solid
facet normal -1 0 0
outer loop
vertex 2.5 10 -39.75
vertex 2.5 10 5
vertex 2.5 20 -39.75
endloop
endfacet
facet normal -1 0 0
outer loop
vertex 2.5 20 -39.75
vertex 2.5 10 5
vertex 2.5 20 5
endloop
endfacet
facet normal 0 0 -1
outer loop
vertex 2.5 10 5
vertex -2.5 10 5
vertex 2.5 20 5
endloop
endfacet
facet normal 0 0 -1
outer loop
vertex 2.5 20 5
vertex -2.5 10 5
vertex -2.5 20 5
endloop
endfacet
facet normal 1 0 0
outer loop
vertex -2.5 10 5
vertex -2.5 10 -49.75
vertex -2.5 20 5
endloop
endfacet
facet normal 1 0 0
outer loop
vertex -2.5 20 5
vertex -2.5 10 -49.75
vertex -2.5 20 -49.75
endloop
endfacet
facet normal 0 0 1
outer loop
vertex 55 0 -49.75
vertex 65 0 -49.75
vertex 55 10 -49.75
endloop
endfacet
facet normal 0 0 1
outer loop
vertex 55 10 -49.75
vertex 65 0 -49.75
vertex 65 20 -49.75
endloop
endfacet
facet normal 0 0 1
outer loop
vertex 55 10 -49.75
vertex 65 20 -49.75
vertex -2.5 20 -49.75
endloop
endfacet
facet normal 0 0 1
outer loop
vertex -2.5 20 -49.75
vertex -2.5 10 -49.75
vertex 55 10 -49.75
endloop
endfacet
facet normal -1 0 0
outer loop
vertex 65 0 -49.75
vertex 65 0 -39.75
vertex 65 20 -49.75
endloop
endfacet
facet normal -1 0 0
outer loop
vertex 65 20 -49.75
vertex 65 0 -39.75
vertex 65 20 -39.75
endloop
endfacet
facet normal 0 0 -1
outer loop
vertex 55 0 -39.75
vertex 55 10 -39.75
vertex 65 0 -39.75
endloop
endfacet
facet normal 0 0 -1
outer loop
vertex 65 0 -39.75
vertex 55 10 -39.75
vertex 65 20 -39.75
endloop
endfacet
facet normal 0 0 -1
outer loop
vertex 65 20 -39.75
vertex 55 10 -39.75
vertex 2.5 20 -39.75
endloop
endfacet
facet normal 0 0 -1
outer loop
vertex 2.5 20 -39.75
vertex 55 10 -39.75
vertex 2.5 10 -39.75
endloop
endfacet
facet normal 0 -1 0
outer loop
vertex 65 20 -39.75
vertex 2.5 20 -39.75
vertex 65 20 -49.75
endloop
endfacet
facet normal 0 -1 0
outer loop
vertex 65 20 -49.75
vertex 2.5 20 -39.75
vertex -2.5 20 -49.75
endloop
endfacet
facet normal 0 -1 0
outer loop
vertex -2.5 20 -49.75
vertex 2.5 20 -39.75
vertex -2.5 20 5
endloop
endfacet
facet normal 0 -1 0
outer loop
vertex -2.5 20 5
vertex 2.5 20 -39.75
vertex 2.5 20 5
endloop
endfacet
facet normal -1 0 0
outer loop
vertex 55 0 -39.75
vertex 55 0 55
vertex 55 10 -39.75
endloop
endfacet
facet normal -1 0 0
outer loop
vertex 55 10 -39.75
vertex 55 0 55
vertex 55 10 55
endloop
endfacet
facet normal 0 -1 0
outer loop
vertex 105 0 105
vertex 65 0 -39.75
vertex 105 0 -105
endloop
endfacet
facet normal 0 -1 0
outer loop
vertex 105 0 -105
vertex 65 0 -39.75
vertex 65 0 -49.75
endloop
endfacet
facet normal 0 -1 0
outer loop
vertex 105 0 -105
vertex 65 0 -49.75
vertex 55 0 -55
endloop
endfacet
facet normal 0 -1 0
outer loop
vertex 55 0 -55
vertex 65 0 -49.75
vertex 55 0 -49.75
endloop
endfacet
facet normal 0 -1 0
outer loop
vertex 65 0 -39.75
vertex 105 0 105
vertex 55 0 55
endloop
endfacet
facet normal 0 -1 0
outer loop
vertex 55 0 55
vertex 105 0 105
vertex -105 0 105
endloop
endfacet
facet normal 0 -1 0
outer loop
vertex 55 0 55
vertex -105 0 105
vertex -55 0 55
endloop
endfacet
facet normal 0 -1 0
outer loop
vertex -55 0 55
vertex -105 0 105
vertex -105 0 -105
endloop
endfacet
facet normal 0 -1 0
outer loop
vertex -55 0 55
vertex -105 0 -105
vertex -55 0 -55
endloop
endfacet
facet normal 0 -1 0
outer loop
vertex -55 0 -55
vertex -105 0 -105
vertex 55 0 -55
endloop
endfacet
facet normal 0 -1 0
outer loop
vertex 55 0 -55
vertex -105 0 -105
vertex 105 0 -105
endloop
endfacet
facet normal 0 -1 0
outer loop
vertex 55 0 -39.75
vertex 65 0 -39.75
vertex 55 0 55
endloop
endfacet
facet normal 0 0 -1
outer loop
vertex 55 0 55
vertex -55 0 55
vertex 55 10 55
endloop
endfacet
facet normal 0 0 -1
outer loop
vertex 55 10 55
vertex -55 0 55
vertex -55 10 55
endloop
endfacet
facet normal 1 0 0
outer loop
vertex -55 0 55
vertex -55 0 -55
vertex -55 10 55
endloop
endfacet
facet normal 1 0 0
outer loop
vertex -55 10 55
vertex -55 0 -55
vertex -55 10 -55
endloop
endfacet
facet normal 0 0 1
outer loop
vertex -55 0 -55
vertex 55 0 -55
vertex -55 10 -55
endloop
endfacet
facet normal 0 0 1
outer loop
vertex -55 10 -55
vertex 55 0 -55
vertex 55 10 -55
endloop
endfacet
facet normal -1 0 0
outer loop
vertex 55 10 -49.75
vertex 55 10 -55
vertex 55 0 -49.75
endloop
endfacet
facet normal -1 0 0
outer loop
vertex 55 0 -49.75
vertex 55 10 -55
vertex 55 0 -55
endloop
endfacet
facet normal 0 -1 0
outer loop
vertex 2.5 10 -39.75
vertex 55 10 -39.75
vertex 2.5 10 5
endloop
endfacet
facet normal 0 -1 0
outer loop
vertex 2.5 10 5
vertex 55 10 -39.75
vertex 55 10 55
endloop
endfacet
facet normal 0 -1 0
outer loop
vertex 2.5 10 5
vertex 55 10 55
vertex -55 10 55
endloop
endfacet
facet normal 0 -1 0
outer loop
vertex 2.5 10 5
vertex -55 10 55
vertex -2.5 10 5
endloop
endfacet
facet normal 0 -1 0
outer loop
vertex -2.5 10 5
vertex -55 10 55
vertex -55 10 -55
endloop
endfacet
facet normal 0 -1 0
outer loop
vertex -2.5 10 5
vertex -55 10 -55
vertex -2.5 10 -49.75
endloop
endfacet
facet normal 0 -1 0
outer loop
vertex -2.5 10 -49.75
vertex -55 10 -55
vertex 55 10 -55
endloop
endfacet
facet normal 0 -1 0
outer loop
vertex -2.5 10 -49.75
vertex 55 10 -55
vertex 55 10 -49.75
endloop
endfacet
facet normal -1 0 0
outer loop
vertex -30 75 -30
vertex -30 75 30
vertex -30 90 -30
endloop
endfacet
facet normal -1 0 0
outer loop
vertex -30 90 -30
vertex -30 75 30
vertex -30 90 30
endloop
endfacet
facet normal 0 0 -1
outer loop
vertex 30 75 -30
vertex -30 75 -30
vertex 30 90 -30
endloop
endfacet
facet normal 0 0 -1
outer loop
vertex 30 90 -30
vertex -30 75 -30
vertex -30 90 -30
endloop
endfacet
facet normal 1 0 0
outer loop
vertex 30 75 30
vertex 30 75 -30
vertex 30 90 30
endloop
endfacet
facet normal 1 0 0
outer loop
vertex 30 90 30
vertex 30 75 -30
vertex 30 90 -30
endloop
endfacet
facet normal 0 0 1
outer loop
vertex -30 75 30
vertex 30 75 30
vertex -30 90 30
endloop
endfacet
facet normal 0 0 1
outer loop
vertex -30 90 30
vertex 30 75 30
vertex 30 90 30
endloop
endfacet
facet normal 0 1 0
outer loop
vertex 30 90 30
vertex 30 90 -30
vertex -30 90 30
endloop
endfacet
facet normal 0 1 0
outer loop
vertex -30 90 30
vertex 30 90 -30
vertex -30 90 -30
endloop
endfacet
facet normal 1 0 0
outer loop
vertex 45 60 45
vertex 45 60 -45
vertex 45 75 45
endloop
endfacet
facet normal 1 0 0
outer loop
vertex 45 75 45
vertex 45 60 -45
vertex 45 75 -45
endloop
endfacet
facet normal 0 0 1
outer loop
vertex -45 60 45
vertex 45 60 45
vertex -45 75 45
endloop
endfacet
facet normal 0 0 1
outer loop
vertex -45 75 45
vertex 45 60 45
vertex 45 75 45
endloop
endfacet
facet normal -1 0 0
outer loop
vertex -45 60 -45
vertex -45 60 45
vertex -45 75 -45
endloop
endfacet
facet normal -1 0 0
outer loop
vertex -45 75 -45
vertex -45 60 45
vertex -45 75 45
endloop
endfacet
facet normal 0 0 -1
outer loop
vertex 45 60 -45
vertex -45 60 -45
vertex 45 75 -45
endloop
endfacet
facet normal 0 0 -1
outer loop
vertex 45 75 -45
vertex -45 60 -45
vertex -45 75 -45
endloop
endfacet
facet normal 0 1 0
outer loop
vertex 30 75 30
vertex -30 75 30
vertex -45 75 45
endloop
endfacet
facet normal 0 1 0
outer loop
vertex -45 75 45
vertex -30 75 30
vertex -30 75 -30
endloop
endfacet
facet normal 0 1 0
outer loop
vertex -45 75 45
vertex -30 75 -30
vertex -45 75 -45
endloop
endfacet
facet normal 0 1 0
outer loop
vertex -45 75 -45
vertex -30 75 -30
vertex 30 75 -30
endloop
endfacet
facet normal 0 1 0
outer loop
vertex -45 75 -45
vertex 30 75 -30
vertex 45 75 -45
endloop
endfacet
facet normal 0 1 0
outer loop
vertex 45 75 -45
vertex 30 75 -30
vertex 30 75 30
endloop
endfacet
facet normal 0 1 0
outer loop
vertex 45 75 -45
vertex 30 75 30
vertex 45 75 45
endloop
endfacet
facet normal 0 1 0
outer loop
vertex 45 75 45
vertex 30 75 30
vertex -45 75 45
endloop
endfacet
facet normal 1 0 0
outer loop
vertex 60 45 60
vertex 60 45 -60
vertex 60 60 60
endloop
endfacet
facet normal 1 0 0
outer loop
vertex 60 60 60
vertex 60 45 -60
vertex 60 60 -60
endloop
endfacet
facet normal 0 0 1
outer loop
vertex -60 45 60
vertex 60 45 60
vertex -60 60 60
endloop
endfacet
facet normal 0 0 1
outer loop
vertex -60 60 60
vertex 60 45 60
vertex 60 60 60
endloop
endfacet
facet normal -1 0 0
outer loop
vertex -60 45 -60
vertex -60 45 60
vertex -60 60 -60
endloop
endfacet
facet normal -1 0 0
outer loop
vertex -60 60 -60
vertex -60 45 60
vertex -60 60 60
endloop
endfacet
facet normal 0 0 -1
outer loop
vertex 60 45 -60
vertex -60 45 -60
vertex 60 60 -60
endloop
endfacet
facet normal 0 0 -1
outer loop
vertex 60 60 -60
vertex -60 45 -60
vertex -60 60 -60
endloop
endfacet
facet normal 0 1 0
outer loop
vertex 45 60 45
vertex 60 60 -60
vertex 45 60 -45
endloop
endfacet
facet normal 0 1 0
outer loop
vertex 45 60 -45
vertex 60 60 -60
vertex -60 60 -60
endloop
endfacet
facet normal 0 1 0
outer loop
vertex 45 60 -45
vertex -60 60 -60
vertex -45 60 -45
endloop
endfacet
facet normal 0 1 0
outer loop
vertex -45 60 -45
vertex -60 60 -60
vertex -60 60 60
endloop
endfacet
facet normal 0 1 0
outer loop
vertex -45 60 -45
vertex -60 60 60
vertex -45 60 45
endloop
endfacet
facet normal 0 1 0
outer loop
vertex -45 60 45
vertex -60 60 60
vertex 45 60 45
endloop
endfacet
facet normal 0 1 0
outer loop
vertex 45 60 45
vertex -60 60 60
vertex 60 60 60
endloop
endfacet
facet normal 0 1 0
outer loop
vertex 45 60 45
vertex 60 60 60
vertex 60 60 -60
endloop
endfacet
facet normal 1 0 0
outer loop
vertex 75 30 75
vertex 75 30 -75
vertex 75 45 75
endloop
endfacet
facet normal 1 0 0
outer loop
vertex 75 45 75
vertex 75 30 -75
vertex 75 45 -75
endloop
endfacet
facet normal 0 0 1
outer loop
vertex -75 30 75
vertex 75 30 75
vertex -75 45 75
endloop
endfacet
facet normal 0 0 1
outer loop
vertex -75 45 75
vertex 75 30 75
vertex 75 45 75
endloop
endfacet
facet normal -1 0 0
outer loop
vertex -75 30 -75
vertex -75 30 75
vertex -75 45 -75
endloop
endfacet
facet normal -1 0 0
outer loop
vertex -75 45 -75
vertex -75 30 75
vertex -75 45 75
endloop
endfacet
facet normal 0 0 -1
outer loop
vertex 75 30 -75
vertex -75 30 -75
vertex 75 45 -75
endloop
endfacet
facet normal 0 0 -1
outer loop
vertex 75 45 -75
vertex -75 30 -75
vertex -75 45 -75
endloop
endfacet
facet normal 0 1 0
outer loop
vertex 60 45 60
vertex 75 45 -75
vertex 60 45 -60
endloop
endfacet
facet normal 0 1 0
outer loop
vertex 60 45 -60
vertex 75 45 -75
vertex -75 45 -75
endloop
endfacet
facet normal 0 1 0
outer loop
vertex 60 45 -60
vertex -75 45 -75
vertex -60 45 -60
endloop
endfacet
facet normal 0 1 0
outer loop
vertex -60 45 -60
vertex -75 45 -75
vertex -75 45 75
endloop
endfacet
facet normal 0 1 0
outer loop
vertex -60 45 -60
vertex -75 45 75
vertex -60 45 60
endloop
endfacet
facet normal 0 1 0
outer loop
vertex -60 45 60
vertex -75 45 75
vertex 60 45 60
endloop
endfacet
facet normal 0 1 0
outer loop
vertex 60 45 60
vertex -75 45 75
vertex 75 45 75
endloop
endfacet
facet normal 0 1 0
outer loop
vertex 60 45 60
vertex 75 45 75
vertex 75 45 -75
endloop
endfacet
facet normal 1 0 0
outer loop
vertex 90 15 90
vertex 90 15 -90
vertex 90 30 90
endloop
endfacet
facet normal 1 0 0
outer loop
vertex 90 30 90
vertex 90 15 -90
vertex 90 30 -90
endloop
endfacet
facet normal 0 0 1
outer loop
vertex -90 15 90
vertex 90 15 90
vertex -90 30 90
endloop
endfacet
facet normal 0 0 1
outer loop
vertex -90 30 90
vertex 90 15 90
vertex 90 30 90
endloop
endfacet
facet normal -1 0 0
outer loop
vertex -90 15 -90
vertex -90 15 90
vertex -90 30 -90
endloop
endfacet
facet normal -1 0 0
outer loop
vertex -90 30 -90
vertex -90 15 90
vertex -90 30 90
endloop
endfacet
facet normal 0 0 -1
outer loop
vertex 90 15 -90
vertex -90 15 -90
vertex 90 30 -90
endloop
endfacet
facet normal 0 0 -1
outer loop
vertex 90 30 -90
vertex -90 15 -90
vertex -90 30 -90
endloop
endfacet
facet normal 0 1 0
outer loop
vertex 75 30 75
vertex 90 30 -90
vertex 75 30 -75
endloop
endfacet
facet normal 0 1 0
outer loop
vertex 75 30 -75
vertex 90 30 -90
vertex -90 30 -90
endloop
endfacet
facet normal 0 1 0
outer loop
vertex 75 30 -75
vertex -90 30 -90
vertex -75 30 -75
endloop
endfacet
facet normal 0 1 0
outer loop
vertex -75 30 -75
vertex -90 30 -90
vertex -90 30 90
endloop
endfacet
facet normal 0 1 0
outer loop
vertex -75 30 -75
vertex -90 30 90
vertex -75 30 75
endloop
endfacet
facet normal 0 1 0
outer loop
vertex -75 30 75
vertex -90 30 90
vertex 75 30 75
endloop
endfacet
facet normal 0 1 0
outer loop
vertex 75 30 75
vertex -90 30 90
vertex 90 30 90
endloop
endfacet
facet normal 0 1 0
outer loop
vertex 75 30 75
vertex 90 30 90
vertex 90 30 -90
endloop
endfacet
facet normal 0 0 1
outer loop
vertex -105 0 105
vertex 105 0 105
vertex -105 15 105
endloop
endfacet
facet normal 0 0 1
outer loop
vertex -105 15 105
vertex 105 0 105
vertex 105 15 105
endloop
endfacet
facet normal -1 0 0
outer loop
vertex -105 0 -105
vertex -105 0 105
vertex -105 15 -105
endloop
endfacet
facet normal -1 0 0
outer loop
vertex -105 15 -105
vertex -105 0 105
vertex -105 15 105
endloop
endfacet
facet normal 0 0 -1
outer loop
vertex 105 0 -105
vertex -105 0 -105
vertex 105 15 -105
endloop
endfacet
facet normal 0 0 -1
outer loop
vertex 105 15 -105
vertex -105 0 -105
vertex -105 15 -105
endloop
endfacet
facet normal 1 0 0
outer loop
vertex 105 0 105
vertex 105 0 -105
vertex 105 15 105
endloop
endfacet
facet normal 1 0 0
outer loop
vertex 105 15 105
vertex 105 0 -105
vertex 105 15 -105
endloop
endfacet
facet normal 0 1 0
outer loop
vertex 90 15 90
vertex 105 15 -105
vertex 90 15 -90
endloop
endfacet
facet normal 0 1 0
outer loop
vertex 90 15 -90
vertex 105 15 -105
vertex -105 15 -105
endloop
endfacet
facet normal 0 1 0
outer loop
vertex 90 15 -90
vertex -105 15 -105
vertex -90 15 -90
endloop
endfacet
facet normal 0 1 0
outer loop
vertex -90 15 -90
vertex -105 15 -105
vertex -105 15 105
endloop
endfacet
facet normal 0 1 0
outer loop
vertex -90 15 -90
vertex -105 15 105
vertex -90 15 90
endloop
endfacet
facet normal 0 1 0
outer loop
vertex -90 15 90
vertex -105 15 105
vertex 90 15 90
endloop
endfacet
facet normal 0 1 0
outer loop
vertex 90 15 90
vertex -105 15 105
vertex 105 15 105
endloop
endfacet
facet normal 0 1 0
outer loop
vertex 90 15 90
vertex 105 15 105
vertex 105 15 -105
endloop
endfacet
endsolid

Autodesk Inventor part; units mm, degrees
ref_plane "YZ Plane" through (0, 0, 0) normal (1, 0, 0) x (0, 1, 0)
ref_plane "XZ Plane" through (0, 0, 0) normal (0, 1, 0) x (-1, 0, 0)
ref_plane "XY Plane" through (0, 0, 0) normal (0, 0, 1) x (1, 0, 0)
sketch "Náčrt1" plane through (0, 0, 0) normal (0, 1, 0) x (-1, 0, 0)
  line L0 (105, 105) -> (-105, 105)
  line L1 (-105, 105) -> (-105, -105)
  line L2 (-105, -105) -> (105, -105)
  line L3 (105, -105) -> (105, 105)
  line L4 (105, 105) -> (-105, -105) construction
  line L5 (-105, 105) -> (105, -105) construction
  point P0 (0, 0)
  dimension "d0" = 210
  dimension "d1" = 210
extrude "Vysunutí1" add sketch "Náčrt1" along normal blind 15
sketch "Náčrt2" plane through (0, 15, 0) normal (0, 1, 0) x (1, 0, 0)
  line L0 (90, -90) -> (-90, -90)
  line L1 (-90, -90) -> (-90, 90)
  line L2 (-90, 90) -> (90, 90)
  line L3 (90, 90) -> (90, -90)
  line L4 (90, -90) -> (-90, 90) construction
  line L5 (-90, -90) -> (90, 90) construction
  point P0 (0, 0)
  dimension "d4" = 180
  dimension "d5" = 180
extrude "Vysunutí2" add sketch "Náčrt2" along normal blind 15
sketch "Náčrt3" plane through (0, 30, 0) normal (0, 1, 0) x (1, 0, 0)
  line L0 (75, -75) -> (-75, -75)
  line L1 (-75, -75) -> (-75, 75)
  line L2 (-75, 75) -> (75, 75)
  line L3 (75, 75) -> (75, -75)
  line L4 (75, -75) -> (-75, 75) construction
  line L5 (-75, -75) -> (75, 75) construction
  point P0 (0, 0)
  dimension "d8" = 150
  dimension "d9" = 150
extrude "Vysunutí3" add sketch "Náčrt3" along normal blind 15
sketch "Náčrt4" plane through (0, 45, 0) normal (0, 1, 0) x (1, 0, 0)
  line L0 (60, -60) -> (-60, -60)
  line L1 (-60, -60) -> (-60, 60)
  line L2 (-60, 60) -> (60, 60)
  line L3 (60, 60) -> (60, -60)
  line L4 (60, -60) -> (-60, 60) construction
  line L5 (-60, -60) -> (60, 60) construction
  point P0 (0, 0)
  dimension "d12" = 120
  dimension "d13" = 120
extrude "Vysunutí4" add sketch "Náčrt4" along normal blind 15
sketch "Náčrt5" plane through (0, 60, 0) normal (0, 1, 0) x (1, 0, 0)
  line L0 (45, -45) -> (-45, -45)
  line L1 (-45, -45) -> (-45, 45)
  line L2 (-45, 45) -> (45, 45)
  line L3 (45, 45) -> (45, -45)
  line L4 (45, -45) -> (-45, 45) construction
  line L5 (-45, -45) -> (45, 45) construction
  point P0 (0, 0)
  dimension "d16" = 90
  dimension "d17" = 90
extrude "Vysunutí5" add sketch "Náčrt5" along normal blind 15
sketch "Náčrt7" plane through (0, 75, 0) normal (0, 1, 0) x (1, 0, 0)
  line L0 (-30, 30) -> (30, 30)
  line L1 (30, 30) -> (30, -30)
  line L2 (30, -30) -> (-30, -30)
  line L3 (-30, -30) -> (-30, 30)
  line L4 (-30, 30) -> (30, -30) construction
  line L5 (30, 30) -> (-30, -30) construction
  point P0 (0, 0)
  dimension "d20" = 60
  dimension "d21" = 60
extrude "Vysunutí6" add sketch "Náčrt7" along normal blind 15
sketch "Náčrt8" plane through (0, 0, 0) normal (0, -1, 0) x (1, 0, 0)
  line L0 (-55, -55) -> (55, -55)
  line L1 (55, -55) -> (55, 55)
  line L2 (55, 55) -> (-55, 55)
  line L3 (-55, 55) -> (-55, -55)
  line L4 (-55, -55) -> (55, 55) construction
  line L5 (55, -55) -> (-55, 55) construction
  point P0 (0, 0)
  dimension "d24" = 110
  dimension "d25" = 110
extrude "Vysunutí7" cut sketch "Náčrt8" against normal blind 10
sketch "Náčrt9" plane through (0, 0, 0) normal (0, -1, 0) x (1, 0, 0)
  line L0 (55, 55) -> (55, -55) projected
  line L1 (55, -49.75) -> (65, -49.75)
  line L2 (65, -49.75) -> (65, -39.75)
  line L3 (65, -39.75) -> (55, -39.75)
  line L4 (55, -39.75) -> (55, -49.75)
  line L5 (55, -55) -> (-55, -55) projected
  point P0 (0, 0)
  dimension "d28" = 10
  dimension "d29" = 10
  dimension "d30" = 5.25
extrude "Vysunutí8" cut sketch "Náčrt9" against normal blind 20
sketch "Náčrt10" plane through (0, 10, 0) normal (0, -1, 0) x (1, 0, 0)
  line L0 (55, -39.75) -> (55, -49.75) projected
  line L1 (55, -49.75) -> (-2.5, -49.75)
  line L2 (-2.5, -49.75) -> (-2.5, -39.75)
  line L3 (-2.5, -39.75) -> (55, -39.75)
  line L4 (55, -39.75) -> (55, -49.75)
  line L5 (-2.5, -49.75) -> (2.5, -49.75)
  line L6 (2.5, -49.75) -> (2.5, 5)
  line L7 (2.5, 5) -> (-2.5, 5)
  line L8 (-2.5, 5) -> (-2.5, -49.75)
  point P0 (0, 0)
  point P1 (2.5, -39.75)
  dimension "d33" = 57.5
  dimension "d34" = 5
  dimension "d35" = 54.75
extrude "Vysunutí9" cut sketch "Náčrt10" against normal blind 10
properties part number "strecha" material "Dřevo (dub)"
